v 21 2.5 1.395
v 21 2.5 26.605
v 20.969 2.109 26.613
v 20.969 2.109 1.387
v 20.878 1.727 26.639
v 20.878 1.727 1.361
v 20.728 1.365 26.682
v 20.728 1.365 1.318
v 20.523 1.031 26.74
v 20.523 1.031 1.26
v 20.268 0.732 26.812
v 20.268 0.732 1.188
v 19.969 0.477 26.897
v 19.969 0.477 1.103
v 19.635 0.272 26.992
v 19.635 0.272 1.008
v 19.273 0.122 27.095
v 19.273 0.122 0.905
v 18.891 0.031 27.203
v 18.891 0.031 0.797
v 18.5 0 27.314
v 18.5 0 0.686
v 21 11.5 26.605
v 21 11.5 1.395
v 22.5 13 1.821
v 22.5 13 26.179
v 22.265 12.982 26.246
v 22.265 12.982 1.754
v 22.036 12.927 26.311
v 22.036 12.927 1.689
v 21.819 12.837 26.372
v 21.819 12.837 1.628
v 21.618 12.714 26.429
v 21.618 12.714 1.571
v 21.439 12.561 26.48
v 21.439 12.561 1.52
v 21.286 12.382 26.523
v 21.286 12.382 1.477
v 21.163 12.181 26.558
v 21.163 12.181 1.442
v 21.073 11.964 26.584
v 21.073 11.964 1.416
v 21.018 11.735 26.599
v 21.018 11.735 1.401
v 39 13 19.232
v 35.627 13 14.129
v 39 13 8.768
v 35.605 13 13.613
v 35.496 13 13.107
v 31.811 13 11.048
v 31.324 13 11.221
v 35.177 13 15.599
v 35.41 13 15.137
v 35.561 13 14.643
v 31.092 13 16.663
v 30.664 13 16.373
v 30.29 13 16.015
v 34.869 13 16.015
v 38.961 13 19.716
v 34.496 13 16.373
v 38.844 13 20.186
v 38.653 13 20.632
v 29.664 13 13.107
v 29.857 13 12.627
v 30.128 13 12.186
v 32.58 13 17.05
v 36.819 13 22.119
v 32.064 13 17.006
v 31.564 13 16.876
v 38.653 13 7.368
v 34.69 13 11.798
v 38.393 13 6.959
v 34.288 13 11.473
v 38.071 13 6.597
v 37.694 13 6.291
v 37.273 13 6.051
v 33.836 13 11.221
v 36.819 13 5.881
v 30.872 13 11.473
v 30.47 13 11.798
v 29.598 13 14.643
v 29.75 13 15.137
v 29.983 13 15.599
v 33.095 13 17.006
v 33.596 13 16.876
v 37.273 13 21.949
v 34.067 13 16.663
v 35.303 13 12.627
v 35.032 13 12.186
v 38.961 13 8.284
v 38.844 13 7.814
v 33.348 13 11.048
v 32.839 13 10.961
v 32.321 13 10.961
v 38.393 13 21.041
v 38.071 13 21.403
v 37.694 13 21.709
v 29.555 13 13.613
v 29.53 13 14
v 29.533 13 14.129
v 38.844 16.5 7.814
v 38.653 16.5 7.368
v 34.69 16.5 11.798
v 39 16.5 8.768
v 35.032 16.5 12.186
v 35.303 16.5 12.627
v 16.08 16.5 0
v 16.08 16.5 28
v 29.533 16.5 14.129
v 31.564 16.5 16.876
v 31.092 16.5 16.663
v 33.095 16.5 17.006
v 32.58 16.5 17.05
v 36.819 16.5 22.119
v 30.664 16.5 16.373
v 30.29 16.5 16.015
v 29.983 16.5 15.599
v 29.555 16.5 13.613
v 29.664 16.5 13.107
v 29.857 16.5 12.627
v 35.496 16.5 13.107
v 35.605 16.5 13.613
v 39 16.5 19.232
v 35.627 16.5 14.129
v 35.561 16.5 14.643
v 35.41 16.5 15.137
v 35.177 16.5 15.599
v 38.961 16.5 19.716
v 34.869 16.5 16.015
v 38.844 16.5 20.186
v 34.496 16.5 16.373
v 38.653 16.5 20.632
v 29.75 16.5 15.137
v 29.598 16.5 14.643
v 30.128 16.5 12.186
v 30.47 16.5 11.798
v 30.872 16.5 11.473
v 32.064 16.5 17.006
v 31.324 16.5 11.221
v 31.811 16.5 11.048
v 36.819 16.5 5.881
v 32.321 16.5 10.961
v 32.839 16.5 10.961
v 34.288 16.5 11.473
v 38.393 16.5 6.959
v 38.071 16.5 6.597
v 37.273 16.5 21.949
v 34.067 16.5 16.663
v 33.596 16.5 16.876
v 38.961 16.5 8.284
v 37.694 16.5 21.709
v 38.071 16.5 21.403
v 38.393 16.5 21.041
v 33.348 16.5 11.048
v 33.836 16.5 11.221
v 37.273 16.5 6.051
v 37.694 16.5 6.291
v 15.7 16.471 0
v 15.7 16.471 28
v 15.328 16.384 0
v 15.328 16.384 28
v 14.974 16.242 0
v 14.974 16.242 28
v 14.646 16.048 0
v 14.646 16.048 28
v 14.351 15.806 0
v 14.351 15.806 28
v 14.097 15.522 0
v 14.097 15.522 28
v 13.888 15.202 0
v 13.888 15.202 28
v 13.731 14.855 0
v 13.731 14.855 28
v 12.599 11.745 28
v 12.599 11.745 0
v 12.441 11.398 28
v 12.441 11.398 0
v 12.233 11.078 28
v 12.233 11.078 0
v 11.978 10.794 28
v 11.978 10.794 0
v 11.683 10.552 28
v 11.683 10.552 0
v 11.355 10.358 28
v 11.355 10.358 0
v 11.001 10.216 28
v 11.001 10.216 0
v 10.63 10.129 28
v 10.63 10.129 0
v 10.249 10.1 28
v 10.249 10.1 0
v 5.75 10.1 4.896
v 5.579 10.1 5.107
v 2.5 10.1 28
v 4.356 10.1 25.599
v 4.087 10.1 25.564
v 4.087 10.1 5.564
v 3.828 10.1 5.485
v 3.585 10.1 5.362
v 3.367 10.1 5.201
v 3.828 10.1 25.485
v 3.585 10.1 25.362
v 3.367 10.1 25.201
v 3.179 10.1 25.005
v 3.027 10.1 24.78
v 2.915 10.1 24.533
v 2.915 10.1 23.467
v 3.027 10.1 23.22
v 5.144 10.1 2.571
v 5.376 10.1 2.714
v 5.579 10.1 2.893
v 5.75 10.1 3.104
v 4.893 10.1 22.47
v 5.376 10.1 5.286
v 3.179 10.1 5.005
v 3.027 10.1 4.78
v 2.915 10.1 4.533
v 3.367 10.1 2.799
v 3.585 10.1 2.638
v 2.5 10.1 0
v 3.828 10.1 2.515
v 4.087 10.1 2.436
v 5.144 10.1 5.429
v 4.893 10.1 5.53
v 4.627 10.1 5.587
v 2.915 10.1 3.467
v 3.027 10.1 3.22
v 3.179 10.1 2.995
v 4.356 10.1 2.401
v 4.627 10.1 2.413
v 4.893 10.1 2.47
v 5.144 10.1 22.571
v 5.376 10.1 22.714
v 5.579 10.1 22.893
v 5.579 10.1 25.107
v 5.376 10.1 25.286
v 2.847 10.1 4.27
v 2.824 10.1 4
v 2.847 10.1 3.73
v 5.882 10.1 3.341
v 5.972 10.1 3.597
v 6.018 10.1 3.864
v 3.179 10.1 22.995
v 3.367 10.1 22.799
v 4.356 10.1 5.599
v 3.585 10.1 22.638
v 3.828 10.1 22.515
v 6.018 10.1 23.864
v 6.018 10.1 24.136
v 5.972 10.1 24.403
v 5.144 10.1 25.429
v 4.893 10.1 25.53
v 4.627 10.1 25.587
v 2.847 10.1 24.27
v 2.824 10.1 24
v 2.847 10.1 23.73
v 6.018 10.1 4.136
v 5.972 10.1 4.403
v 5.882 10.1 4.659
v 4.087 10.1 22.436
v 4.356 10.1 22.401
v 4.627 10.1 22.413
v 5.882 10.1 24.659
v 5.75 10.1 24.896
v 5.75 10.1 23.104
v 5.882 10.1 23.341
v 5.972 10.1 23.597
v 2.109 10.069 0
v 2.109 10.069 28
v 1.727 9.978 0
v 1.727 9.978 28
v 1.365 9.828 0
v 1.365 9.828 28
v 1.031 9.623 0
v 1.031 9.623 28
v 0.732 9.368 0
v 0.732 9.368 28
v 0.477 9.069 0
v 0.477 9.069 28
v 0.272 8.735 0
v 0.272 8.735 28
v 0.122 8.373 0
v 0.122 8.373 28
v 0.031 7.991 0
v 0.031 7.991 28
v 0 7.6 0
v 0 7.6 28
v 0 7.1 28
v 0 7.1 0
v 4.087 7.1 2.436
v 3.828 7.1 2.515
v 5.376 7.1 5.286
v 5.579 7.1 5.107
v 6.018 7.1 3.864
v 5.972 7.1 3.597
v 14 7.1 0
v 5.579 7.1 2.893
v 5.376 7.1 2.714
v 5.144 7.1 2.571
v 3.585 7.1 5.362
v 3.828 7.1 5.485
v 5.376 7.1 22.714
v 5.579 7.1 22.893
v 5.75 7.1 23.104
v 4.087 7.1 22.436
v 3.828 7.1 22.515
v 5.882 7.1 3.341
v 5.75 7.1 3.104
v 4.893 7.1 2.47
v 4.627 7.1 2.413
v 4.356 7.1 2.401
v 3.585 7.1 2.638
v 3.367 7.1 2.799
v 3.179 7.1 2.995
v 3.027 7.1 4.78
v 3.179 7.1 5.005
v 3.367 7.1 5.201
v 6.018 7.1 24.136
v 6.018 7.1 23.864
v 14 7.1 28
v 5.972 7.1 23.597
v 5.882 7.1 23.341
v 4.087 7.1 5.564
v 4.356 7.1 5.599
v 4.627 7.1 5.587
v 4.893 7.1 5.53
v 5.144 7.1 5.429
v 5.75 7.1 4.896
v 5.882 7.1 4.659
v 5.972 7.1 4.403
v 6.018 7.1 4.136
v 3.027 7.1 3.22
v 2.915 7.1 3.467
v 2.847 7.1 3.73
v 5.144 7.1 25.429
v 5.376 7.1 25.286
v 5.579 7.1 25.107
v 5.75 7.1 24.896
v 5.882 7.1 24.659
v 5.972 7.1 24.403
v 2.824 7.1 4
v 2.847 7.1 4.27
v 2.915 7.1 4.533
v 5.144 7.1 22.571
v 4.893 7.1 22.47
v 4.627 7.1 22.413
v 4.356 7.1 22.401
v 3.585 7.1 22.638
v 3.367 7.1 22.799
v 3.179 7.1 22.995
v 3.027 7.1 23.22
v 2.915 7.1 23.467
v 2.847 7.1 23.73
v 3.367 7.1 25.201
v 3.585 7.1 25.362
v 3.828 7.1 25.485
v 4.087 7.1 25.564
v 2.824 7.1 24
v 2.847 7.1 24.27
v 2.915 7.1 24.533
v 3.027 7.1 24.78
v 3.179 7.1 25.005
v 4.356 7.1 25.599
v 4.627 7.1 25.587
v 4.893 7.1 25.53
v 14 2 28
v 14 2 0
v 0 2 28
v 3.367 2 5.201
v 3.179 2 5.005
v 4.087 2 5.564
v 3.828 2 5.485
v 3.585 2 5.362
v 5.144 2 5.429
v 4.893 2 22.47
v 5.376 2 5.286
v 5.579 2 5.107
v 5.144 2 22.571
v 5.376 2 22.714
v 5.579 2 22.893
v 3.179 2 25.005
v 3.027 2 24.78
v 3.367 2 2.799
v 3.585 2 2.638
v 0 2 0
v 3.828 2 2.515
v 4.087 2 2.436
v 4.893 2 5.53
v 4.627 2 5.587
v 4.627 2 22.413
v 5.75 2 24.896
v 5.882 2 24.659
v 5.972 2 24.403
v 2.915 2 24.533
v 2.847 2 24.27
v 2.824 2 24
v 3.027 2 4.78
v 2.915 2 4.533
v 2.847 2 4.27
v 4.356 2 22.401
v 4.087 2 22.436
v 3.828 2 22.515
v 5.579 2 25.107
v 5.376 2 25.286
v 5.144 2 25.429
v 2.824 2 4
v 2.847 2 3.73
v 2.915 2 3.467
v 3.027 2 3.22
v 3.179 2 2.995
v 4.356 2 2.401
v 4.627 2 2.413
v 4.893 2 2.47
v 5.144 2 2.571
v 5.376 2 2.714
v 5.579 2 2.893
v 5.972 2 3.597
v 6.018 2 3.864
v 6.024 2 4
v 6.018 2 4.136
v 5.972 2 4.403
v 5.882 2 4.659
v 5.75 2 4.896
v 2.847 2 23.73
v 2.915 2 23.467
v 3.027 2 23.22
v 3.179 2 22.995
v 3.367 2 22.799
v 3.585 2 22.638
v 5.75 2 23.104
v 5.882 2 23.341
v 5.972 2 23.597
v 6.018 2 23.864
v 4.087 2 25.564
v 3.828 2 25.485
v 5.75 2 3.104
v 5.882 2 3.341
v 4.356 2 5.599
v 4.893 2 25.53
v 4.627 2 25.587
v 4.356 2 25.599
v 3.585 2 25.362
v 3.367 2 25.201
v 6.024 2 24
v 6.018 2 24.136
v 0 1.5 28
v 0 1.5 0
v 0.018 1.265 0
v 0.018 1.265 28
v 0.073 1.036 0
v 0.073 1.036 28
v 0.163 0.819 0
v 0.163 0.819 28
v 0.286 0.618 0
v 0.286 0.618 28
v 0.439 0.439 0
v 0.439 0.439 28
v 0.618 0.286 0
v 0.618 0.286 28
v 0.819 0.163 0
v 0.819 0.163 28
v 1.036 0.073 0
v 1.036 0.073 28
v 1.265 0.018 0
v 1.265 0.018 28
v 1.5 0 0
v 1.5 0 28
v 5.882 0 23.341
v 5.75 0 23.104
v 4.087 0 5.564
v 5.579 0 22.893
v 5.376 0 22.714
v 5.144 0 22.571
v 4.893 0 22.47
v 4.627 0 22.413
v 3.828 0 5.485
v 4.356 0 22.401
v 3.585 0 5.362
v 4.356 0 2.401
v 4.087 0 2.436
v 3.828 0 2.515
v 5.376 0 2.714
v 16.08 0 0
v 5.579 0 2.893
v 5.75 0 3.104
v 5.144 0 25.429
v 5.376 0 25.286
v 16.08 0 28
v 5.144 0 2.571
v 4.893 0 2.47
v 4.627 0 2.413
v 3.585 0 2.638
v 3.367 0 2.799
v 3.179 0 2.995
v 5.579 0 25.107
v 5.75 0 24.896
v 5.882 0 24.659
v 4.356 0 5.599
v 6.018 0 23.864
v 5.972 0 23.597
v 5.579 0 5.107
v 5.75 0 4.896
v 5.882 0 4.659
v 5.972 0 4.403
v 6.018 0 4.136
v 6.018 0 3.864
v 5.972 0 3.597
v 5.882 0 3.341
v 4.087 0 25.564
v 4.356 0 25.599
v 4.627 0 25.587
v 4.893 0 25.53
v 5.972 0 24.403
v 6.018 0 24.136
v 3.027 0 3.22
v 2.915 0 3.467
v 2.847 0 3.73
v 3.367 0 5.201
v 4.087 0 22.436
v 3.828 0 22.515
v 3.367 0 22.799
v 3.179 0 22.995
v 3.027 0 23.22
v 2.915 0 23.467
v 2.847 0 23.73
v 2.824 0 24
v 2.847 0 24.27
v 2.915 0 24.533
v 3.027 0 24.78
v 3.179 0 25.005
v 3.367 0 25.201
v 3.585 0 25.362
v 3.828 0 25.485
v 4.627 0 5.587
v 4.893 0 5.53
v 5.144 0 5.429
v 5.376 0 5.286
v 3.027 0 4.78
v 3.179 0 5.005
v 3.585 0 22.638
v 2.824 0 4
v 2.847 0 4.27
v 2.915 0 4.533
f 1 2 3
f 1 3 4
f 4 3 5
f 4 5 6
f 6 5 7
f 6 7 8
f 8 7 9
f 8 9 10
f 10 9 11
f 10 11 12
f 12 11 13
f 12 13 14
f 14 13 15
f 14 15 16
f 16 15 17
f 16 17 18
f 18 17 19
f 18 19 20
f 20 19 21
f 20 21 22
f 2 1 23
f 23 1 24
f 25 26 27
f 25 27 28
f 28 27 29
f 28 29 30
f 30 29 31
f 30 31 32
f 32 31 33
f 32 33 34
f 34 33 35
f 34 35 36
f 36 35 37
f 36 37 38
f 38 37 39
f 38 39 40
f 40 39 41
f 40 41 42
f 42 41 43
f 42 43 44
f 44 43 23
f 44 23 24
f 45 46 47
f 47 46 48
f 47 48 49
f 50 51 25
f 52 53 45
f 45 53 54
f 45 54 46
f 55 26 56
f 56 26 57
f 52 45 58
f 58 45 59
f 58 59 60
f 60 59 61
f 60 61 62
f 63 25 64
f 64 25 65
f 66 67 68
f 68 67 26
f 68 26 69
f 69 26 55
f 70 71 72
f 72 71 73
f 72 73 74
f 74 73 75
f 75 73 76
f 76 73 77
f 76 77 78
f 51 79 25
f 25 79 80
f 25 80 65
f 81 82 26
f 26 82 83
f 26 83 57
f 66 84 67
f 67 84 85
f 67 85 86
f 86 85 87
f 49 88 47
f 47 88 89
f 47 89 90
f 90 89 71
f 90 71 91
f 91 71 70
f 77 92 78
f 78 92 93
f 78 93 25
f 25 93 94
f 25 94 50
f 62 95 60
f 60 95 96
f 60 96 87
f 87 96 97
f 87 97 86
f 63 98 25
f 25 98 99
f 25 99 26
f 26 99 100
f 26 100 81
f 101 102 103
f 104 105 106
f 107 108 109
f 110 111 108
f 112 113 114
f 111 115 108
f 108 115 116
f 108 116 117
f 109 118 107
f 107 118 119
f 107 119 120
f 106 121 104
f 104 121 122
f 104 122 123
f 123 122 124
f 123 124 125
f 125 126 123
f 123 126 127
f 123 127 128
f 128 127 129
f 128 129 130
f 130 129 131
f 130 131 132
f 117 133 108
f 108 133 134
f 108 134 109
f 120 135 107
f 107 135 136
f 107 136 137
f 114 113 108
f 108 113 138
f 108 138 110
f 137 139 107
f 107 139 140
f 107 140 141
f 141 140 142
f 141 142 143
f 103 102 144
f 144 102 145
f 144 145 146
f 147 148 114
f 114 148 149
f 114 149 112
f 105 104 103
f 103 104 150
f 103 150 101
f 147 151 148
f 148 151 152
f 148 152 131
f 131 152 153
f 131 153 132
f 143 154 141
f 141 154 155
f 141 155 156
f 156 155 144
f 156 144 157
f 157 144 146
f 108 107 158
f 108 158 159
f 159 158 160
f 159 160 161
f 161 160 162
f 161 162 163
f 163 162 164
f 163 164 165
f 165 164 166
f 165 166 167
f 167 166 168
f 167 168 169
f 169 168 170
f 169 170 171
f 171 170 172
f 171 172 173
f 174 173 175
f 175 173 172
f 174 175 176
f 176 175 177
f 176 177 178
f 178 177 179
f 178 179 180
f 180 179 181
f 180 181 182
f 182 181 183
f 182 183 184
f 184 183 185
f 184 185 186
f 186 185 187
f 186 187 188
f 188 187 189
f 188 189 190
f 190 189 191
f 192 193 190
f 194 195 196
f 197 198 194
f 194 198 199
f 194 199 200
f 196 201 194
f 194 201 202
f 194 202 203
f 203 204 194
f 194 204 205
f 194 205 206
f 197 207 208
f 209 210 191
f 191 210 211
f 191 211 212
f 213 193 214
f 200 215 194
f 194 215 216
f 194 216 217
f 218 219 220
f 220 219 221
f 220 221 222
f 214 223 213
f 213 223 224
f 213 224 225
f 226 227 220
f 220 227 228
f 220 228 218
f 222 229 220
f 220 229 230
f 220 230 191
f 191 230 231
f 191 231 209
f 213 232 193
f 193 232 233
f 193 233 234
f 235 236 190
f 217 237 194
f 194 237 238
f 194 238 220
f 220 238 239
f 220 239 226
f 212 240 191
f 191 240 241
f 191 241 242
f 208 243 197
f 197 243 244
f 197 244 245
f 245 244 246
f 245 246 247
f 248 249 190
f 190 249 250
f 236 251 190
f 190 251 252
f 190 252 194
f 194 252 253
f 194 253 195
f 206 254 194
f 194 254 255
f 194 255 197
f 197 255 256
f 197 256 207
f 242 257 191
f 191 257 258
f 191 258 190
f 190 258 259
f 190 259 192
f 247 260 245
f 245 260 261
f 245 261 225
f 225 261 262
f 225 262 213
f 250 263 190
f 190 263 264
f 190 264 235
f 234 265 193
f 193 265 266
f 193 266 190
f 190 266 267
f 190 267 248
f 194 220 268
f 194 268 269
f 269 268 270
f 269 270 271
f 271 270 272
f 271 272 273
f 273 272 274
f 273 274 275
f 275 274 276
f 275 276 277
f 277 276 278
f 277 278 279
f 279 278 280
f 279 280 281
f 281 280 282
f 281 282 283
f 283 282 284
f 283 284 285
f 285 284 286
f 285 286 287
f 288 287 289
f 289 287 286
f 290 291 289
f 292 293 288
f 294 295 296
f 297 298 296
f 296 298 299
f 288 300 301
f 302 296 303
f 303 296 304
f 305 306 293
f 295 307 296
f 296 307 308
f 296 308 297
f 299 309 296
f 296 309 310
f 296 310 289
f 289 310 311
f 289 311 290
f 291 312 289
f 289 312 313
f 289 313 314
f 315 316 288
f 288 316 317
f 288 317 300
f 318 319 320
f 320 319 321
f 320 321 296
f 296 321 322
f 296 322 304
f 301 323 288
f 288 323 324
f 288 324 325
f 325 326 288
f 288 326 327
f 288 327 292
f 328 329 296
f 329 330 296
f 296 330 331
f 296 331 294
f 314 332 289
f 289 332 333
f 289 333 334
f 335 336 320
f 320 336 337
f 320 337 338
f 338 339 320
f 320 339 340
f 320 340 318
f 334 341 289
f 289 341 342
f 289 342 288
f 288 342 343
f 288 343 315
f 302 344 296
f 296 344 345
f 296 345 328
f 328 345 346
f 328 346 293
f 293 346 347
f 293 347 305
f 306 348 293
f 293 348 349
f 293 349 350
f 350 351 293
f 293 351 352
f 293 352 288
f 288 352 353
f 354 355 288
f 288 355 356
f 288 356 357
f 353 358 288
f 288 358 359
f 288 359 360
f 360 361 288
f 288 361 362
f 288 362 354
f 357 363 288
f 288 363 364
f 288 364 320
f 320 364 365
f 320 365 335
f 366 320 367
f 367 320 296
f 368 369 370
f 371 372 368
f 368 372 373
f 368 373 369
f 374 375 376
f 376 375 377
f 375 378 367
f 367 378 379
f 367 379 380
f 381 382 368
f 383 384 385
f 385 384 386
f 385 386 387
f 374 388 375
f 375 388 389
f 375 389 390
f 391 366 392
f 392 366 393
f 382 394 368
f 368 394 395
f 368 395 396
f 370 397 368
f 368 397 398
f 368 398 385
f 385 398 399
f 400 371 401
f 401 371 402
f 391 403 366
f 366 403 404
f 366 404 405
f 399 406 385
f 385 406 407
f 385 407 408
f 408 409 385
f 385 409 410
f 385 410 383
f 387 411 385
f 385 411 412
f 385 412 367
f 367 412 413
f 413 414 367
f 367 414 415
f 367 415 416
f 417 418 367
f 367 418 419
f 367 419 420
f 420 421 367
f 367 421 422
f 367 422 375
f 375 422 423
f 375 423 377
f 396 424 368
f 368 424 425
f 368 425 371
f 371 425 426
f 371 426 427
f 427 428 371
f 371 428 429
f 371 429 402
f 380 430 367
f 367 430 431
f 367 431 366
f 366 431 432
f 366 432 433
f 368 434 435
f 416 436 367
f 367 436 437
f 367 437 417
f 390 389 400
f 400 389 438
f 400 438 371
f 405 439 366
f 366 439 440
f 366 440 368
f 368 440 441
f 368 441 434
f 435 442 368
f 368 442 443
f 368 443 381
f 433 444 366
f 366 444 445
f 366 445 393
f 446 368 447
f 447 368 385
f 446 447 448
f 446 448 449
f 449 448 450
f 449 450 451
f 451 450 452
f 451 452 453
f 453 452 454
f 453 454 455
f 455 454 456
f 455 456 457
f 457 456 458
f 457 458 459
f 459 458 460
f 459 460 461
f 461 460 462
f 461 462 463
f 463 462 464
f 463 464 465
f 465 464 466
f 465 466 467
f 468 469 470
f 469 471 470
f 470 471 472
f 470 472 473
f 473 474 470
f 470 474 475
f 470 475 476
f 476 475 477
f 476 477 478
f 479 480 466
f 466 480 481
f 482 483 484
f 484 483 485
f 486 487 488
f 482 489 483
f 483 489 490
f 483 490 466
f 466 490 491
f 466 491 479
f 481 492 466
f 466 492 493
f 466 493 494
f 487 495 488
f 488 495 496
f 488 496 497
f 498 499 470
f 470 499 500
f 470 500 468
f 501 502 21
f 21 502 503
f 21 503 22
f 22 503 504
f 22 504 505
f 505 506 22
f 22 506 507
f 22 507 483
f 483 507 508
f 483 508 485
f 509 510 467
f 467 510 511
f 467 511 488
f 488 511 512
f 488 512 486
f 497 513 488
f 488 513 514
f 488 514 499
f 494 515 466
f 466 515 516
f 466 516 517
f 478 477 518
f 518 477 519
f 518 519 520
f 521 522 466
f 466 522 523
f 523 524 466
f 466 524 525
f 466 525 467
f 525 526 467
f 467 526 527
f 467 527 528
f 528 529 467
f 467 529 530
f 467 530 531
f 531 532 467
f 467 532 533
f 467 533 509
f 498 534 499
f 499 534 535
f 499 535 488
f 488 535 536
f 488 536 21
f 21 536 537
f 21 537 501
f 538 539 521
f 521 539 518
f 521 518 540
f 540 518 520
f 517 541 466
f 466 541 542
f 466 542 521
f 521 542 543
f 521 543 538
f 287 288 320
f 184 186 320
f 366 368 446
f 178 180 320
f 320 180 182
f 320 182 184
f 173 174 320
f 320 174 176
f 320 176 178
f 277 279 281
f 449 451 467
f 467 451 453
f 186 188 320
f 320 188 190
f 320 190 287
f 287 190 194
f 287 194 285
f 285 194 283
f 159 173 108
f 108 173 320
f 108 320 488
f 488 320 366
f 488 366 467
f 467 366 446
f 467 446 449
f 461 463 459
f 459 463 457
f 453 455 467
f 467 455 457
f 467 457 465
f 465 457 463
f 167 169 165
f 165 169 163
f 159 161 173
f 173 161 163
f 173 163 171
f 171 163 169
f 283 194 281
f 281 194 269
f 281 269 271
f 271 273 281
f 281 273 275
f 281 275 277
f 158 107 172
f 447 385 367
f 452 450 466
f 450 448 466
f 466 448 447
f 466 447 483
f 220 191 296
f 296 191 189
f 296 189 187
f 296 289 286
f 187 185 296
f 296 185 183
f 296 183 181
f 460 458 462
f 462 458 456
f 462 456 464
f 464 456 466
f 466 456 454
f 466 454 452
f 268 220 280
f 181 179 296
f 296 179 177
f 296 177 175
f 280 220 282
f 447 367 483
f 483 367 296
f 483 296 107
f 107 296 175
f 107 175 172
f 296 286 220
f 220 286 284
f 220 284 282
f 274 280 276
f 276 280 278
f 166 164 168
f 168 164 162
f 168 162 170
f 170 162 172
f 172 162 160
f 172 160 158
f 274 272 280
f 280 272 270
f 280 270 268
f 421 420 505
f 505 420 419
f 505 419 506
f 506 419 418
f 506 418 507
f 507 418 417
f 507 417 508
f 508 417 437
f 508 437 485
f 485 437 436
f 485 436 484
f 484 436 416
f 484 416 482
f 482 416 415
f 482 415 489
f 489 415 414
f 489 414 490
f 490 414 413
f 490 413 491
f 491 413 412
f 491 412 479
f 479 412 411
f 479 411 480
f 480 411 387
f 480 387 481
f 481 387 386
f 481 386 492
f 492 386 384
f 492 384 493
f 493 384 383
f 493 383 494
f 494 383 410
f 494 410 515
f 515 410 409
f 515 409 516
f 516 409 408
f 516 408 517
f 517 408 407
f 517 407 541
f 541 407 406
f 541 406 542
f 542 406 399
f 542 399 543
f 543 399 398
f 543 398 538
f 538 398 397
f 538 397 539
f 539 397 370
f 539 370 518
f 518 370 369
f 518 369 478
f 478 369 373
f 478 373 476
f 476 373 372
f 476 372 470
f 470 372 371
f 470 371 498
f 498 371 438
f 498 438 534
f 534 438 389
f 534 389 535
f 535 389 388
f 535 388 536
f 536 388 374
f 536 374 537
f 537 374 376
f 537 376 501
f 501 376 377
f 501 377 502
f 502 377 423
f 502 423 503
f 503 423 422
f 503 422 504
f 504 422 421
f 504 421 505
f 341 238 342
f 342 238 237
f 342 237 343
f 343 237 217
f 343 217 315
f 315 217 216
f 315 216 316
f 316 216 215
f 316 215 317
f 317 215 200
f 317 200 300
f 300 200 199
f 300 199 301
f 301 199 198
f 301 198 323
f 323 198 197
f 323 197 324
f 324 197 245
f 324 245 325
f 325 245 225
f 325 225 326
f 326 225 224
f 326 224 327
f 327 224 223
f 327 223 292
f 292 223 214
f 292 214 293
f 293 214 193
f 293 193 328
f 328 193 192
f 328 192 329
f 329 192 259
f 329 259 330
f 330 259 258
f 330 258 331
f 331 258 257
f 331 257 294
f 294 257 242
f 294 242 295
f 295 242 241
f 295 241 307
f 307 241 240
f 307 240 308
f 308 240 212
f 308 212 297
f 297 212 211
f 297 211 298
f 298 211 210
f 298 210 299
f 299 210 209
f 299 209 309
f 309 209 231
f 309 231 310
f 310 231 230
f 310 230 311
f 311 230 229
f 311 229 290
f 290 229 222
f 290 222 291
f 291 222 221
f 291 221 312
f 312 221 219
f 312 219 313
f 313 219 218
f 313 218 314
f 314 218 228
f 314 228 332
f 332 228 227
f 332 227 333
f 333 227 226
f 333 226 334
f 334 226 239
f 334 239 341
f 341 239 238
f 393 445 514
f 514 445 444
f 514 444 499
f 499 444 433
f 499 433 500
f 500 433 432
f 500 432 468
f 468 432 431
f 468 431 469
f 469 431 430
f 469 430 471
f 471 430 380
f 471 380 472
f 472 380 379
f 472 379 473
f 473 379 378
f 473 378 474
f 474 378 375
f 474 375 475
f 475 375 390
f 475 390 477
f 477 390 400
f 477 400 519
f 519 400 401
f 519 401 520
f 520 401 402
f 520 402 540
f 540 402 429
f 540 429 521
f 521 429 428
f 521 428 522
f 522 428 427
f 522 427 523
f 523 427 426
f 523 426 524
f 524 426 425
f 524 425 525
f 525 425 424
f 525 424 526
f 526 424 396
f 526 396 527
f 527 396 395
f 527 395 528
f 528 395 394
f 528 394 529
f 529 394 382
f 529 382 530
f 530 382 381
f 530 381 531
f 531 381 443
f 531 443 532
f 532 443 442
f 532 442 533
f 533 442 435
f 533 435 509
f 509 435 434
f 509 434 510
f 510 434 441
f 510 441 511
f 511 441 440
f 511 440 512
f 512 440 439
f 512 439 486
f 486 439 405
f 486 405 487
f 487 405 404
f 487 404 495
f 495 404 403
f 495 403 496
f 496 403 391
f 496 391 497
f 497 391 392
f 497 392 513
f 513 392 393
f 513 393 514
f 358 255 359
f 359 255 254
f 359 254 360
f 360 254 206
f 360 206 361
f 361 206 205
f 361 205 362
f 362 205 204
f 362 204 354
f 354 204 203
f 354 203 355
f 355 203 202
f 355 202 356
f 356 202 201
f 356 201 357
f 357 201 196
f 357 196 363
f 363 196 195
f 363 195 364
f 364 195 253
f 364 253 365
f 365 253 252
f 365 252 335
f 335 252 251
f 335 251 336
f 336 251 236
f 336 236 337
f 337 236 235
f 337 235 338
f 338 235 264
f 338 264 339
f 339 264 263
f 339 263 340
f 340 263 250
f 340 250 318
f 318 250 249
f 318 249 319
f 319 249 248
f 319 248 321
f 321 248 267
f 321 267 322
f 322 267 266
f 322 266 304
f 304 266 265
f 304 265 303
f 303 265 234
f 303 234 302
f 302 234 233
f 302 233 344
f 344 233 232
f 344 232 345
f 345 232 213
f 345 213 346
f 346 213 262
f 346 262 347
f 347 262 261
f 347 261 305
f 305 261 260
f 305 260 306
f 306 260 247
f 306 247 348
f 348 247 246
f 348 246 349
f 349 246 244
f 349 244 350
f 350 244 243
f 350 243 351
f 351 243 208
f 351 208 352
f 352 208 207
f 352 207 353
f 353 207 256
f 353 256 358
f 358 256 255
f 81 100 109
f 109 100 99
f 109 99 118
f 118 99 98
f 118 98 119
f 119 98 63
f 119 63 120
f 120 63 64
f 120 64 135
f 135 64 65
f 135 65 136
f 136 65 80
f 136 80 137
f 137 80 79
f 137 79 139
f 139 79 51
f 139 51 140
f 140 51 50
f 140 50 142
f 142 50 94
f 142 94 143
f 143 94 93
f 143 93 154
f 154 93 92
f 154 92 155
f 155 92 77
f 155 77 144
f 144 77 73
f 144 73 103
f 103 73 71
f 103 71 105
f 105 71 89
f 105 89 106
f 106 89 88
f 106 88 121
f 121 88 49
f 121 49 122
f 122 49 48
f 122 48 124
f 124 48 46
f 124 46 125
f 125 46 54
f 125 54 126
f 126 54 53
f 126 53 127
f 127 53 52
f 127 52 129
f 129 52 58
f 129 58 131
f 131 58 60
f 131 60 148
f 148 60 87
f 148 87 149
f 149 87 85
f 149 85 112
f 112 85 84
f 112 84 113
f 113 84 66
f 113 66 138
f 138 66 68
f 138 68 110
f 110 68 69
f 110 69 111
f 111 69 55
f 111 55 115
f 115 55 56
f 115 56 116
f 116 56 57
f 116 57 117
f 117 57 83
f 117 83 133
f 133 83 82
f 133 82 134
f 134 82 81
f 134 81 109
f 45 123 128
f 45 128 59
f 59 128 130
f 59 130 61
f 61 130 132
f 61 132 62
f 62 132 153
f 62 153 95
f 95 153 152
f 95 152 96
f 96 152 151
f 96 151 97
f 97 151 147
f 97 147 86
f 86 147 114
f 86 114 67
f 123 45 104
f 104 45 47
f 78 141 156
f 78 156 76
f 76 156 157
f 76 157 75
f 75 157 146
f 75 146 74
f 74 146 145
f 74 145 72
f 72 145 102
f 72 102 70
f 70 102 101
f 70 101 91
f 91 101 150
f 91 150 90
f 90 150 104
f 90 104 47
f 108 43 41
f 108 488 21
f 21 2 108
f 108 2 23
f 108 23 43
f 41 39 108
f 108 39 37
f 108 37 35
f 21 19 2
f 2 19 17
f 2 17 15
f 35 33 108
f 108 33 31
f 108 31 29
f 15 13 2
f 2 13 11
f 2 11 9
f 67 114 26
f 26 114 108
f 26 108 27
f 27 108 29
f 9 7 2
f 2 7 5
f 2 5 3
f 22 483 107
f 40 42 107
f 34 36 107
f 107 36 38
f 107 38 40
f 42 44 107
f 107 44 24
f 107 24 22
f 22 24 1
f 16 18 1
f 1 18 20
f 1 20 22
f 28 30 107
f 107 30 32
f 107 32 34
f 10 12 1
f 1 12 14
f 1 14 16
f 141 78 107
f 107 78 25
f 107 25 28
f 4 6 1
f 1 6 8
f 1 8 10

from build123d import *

# Parameters (mm, degrees)
BOSS_EXTRU_1_DEPTH      = 28
ESQUISSE2_R             = 1.6
ENL_V_MAT_EXTRU_1_DEPTH = 53.297323067
ESQUISSE3_R             = 3.05
ENL_V_MAT_EXTRU_2_DEPTH = 54.900371056


with BuildPart() as part:
    # Esquisse1 → Boss.-Extru.1 (new body)
    with BuildSketch(Plane.XY):
        with BuildLine():
            Line((1.5, 0), (18.5, 0))
            ThreePointArc((18.5, 0), (20.267766953, 0.732233047), (21, 2.5))
            Line((21, 2.5), (21, 11.5))
            ThreePointArc((21, 11.5), (21.439339828, 12.560660172), (22.5, 13))
            Line((22.5, 13), (43, 13))
            Line((43, 13), (43, 16.5))
            Line((43, 16.5), (16.079928345, 16.5))
            ThreePointArc((16.079928345, 16.5), (14.645987254, 16.047880111), (13.730696793, 14.855050358))
            Line((13.730696793, 14.855050358), (12.598712706, 11.744949642))
            ThreePointArc((12.598712706, 11.744949642), (11.683422245, 10.552119889), (10.249481154, 10.1))
            Line((10.249481154, 10.1), (2.5, 10.1))
            ThreePointArc((2.5, 10.1), (0.732233047, 9.367766953), (0, 7.6))
            Line((0, 7.6), (0, 7.1))
            Line((0, 7.1), (14, 7.1))
            Line((14, 7.1), (14, 2))
            Line((14, 2), (0, 2))
            Line((0, 2), (0, 1.5))
            ThreePointArc((0, 1.5), (0.439339828, 0.439339828), (1.5, 0))
        make_face()
    extrude(amount=BOSS_EXTRU_1_DEPTH)

    # Esquisse2 → Enlèv. mat.-Extru.1 (cut, through all)
    with BuildSketch(Plane(origin=(0, 10.1, 0), x_dir=(1, 0, 0), z_dir=(0, 1, 0))):
        with Locations(Location((4.42409693, -4, 0), (0, 0, 180))):
            Circle(ESQUISSE2_R)
        with Locations(Location((4.42409693, -24, 0), (0, 0, 180))):
            Circle(ESQUISSE2_R)
    extrude(amount=-ENL_V_MAT_EXTRU_1_DEPTH, mode=Mode.SUBTRACT)

    # Esquisse3 → Enlèv. mat.-Extru.2 (cut, through all)
    with BuildSketch(Plane(origin=(0, 16.5, 0), x_dir=(1, 0, 0), z_dir=(0, 1, 0))):
        with Locations(Location((32.579928345, -14, 0), (0, 0, 270))):
            Circle(ESQUISSE3_R)
        with BuildLine():
            Line((16.079928345, -28), (43, -28))
            Line((43, -28), (43, 0))
            Line((43, 0), (16.079928345, 0))
            Line((16.079928345, 0), (36.818504724, -5.881340534))
            ThreePointArc((36.818504724, -5.881340534), (38.393273299, -6.958588944), (39, -8.767523137))
            Line((39, -8.767523137), (39, -19.232476863))
            ThreePointArc((39, -19.232476863), (38.393273299, -21.041411056), (36.818504724, -22.118659466))
            Line((36.818504724, -22.118659466), (16.079928345, -28))
        make_face()
    extrude(amount=-ENL_V_MAT_EXTRU_2_DEPTH, mode=Mode.SUBTRACT)


solid = part.part
